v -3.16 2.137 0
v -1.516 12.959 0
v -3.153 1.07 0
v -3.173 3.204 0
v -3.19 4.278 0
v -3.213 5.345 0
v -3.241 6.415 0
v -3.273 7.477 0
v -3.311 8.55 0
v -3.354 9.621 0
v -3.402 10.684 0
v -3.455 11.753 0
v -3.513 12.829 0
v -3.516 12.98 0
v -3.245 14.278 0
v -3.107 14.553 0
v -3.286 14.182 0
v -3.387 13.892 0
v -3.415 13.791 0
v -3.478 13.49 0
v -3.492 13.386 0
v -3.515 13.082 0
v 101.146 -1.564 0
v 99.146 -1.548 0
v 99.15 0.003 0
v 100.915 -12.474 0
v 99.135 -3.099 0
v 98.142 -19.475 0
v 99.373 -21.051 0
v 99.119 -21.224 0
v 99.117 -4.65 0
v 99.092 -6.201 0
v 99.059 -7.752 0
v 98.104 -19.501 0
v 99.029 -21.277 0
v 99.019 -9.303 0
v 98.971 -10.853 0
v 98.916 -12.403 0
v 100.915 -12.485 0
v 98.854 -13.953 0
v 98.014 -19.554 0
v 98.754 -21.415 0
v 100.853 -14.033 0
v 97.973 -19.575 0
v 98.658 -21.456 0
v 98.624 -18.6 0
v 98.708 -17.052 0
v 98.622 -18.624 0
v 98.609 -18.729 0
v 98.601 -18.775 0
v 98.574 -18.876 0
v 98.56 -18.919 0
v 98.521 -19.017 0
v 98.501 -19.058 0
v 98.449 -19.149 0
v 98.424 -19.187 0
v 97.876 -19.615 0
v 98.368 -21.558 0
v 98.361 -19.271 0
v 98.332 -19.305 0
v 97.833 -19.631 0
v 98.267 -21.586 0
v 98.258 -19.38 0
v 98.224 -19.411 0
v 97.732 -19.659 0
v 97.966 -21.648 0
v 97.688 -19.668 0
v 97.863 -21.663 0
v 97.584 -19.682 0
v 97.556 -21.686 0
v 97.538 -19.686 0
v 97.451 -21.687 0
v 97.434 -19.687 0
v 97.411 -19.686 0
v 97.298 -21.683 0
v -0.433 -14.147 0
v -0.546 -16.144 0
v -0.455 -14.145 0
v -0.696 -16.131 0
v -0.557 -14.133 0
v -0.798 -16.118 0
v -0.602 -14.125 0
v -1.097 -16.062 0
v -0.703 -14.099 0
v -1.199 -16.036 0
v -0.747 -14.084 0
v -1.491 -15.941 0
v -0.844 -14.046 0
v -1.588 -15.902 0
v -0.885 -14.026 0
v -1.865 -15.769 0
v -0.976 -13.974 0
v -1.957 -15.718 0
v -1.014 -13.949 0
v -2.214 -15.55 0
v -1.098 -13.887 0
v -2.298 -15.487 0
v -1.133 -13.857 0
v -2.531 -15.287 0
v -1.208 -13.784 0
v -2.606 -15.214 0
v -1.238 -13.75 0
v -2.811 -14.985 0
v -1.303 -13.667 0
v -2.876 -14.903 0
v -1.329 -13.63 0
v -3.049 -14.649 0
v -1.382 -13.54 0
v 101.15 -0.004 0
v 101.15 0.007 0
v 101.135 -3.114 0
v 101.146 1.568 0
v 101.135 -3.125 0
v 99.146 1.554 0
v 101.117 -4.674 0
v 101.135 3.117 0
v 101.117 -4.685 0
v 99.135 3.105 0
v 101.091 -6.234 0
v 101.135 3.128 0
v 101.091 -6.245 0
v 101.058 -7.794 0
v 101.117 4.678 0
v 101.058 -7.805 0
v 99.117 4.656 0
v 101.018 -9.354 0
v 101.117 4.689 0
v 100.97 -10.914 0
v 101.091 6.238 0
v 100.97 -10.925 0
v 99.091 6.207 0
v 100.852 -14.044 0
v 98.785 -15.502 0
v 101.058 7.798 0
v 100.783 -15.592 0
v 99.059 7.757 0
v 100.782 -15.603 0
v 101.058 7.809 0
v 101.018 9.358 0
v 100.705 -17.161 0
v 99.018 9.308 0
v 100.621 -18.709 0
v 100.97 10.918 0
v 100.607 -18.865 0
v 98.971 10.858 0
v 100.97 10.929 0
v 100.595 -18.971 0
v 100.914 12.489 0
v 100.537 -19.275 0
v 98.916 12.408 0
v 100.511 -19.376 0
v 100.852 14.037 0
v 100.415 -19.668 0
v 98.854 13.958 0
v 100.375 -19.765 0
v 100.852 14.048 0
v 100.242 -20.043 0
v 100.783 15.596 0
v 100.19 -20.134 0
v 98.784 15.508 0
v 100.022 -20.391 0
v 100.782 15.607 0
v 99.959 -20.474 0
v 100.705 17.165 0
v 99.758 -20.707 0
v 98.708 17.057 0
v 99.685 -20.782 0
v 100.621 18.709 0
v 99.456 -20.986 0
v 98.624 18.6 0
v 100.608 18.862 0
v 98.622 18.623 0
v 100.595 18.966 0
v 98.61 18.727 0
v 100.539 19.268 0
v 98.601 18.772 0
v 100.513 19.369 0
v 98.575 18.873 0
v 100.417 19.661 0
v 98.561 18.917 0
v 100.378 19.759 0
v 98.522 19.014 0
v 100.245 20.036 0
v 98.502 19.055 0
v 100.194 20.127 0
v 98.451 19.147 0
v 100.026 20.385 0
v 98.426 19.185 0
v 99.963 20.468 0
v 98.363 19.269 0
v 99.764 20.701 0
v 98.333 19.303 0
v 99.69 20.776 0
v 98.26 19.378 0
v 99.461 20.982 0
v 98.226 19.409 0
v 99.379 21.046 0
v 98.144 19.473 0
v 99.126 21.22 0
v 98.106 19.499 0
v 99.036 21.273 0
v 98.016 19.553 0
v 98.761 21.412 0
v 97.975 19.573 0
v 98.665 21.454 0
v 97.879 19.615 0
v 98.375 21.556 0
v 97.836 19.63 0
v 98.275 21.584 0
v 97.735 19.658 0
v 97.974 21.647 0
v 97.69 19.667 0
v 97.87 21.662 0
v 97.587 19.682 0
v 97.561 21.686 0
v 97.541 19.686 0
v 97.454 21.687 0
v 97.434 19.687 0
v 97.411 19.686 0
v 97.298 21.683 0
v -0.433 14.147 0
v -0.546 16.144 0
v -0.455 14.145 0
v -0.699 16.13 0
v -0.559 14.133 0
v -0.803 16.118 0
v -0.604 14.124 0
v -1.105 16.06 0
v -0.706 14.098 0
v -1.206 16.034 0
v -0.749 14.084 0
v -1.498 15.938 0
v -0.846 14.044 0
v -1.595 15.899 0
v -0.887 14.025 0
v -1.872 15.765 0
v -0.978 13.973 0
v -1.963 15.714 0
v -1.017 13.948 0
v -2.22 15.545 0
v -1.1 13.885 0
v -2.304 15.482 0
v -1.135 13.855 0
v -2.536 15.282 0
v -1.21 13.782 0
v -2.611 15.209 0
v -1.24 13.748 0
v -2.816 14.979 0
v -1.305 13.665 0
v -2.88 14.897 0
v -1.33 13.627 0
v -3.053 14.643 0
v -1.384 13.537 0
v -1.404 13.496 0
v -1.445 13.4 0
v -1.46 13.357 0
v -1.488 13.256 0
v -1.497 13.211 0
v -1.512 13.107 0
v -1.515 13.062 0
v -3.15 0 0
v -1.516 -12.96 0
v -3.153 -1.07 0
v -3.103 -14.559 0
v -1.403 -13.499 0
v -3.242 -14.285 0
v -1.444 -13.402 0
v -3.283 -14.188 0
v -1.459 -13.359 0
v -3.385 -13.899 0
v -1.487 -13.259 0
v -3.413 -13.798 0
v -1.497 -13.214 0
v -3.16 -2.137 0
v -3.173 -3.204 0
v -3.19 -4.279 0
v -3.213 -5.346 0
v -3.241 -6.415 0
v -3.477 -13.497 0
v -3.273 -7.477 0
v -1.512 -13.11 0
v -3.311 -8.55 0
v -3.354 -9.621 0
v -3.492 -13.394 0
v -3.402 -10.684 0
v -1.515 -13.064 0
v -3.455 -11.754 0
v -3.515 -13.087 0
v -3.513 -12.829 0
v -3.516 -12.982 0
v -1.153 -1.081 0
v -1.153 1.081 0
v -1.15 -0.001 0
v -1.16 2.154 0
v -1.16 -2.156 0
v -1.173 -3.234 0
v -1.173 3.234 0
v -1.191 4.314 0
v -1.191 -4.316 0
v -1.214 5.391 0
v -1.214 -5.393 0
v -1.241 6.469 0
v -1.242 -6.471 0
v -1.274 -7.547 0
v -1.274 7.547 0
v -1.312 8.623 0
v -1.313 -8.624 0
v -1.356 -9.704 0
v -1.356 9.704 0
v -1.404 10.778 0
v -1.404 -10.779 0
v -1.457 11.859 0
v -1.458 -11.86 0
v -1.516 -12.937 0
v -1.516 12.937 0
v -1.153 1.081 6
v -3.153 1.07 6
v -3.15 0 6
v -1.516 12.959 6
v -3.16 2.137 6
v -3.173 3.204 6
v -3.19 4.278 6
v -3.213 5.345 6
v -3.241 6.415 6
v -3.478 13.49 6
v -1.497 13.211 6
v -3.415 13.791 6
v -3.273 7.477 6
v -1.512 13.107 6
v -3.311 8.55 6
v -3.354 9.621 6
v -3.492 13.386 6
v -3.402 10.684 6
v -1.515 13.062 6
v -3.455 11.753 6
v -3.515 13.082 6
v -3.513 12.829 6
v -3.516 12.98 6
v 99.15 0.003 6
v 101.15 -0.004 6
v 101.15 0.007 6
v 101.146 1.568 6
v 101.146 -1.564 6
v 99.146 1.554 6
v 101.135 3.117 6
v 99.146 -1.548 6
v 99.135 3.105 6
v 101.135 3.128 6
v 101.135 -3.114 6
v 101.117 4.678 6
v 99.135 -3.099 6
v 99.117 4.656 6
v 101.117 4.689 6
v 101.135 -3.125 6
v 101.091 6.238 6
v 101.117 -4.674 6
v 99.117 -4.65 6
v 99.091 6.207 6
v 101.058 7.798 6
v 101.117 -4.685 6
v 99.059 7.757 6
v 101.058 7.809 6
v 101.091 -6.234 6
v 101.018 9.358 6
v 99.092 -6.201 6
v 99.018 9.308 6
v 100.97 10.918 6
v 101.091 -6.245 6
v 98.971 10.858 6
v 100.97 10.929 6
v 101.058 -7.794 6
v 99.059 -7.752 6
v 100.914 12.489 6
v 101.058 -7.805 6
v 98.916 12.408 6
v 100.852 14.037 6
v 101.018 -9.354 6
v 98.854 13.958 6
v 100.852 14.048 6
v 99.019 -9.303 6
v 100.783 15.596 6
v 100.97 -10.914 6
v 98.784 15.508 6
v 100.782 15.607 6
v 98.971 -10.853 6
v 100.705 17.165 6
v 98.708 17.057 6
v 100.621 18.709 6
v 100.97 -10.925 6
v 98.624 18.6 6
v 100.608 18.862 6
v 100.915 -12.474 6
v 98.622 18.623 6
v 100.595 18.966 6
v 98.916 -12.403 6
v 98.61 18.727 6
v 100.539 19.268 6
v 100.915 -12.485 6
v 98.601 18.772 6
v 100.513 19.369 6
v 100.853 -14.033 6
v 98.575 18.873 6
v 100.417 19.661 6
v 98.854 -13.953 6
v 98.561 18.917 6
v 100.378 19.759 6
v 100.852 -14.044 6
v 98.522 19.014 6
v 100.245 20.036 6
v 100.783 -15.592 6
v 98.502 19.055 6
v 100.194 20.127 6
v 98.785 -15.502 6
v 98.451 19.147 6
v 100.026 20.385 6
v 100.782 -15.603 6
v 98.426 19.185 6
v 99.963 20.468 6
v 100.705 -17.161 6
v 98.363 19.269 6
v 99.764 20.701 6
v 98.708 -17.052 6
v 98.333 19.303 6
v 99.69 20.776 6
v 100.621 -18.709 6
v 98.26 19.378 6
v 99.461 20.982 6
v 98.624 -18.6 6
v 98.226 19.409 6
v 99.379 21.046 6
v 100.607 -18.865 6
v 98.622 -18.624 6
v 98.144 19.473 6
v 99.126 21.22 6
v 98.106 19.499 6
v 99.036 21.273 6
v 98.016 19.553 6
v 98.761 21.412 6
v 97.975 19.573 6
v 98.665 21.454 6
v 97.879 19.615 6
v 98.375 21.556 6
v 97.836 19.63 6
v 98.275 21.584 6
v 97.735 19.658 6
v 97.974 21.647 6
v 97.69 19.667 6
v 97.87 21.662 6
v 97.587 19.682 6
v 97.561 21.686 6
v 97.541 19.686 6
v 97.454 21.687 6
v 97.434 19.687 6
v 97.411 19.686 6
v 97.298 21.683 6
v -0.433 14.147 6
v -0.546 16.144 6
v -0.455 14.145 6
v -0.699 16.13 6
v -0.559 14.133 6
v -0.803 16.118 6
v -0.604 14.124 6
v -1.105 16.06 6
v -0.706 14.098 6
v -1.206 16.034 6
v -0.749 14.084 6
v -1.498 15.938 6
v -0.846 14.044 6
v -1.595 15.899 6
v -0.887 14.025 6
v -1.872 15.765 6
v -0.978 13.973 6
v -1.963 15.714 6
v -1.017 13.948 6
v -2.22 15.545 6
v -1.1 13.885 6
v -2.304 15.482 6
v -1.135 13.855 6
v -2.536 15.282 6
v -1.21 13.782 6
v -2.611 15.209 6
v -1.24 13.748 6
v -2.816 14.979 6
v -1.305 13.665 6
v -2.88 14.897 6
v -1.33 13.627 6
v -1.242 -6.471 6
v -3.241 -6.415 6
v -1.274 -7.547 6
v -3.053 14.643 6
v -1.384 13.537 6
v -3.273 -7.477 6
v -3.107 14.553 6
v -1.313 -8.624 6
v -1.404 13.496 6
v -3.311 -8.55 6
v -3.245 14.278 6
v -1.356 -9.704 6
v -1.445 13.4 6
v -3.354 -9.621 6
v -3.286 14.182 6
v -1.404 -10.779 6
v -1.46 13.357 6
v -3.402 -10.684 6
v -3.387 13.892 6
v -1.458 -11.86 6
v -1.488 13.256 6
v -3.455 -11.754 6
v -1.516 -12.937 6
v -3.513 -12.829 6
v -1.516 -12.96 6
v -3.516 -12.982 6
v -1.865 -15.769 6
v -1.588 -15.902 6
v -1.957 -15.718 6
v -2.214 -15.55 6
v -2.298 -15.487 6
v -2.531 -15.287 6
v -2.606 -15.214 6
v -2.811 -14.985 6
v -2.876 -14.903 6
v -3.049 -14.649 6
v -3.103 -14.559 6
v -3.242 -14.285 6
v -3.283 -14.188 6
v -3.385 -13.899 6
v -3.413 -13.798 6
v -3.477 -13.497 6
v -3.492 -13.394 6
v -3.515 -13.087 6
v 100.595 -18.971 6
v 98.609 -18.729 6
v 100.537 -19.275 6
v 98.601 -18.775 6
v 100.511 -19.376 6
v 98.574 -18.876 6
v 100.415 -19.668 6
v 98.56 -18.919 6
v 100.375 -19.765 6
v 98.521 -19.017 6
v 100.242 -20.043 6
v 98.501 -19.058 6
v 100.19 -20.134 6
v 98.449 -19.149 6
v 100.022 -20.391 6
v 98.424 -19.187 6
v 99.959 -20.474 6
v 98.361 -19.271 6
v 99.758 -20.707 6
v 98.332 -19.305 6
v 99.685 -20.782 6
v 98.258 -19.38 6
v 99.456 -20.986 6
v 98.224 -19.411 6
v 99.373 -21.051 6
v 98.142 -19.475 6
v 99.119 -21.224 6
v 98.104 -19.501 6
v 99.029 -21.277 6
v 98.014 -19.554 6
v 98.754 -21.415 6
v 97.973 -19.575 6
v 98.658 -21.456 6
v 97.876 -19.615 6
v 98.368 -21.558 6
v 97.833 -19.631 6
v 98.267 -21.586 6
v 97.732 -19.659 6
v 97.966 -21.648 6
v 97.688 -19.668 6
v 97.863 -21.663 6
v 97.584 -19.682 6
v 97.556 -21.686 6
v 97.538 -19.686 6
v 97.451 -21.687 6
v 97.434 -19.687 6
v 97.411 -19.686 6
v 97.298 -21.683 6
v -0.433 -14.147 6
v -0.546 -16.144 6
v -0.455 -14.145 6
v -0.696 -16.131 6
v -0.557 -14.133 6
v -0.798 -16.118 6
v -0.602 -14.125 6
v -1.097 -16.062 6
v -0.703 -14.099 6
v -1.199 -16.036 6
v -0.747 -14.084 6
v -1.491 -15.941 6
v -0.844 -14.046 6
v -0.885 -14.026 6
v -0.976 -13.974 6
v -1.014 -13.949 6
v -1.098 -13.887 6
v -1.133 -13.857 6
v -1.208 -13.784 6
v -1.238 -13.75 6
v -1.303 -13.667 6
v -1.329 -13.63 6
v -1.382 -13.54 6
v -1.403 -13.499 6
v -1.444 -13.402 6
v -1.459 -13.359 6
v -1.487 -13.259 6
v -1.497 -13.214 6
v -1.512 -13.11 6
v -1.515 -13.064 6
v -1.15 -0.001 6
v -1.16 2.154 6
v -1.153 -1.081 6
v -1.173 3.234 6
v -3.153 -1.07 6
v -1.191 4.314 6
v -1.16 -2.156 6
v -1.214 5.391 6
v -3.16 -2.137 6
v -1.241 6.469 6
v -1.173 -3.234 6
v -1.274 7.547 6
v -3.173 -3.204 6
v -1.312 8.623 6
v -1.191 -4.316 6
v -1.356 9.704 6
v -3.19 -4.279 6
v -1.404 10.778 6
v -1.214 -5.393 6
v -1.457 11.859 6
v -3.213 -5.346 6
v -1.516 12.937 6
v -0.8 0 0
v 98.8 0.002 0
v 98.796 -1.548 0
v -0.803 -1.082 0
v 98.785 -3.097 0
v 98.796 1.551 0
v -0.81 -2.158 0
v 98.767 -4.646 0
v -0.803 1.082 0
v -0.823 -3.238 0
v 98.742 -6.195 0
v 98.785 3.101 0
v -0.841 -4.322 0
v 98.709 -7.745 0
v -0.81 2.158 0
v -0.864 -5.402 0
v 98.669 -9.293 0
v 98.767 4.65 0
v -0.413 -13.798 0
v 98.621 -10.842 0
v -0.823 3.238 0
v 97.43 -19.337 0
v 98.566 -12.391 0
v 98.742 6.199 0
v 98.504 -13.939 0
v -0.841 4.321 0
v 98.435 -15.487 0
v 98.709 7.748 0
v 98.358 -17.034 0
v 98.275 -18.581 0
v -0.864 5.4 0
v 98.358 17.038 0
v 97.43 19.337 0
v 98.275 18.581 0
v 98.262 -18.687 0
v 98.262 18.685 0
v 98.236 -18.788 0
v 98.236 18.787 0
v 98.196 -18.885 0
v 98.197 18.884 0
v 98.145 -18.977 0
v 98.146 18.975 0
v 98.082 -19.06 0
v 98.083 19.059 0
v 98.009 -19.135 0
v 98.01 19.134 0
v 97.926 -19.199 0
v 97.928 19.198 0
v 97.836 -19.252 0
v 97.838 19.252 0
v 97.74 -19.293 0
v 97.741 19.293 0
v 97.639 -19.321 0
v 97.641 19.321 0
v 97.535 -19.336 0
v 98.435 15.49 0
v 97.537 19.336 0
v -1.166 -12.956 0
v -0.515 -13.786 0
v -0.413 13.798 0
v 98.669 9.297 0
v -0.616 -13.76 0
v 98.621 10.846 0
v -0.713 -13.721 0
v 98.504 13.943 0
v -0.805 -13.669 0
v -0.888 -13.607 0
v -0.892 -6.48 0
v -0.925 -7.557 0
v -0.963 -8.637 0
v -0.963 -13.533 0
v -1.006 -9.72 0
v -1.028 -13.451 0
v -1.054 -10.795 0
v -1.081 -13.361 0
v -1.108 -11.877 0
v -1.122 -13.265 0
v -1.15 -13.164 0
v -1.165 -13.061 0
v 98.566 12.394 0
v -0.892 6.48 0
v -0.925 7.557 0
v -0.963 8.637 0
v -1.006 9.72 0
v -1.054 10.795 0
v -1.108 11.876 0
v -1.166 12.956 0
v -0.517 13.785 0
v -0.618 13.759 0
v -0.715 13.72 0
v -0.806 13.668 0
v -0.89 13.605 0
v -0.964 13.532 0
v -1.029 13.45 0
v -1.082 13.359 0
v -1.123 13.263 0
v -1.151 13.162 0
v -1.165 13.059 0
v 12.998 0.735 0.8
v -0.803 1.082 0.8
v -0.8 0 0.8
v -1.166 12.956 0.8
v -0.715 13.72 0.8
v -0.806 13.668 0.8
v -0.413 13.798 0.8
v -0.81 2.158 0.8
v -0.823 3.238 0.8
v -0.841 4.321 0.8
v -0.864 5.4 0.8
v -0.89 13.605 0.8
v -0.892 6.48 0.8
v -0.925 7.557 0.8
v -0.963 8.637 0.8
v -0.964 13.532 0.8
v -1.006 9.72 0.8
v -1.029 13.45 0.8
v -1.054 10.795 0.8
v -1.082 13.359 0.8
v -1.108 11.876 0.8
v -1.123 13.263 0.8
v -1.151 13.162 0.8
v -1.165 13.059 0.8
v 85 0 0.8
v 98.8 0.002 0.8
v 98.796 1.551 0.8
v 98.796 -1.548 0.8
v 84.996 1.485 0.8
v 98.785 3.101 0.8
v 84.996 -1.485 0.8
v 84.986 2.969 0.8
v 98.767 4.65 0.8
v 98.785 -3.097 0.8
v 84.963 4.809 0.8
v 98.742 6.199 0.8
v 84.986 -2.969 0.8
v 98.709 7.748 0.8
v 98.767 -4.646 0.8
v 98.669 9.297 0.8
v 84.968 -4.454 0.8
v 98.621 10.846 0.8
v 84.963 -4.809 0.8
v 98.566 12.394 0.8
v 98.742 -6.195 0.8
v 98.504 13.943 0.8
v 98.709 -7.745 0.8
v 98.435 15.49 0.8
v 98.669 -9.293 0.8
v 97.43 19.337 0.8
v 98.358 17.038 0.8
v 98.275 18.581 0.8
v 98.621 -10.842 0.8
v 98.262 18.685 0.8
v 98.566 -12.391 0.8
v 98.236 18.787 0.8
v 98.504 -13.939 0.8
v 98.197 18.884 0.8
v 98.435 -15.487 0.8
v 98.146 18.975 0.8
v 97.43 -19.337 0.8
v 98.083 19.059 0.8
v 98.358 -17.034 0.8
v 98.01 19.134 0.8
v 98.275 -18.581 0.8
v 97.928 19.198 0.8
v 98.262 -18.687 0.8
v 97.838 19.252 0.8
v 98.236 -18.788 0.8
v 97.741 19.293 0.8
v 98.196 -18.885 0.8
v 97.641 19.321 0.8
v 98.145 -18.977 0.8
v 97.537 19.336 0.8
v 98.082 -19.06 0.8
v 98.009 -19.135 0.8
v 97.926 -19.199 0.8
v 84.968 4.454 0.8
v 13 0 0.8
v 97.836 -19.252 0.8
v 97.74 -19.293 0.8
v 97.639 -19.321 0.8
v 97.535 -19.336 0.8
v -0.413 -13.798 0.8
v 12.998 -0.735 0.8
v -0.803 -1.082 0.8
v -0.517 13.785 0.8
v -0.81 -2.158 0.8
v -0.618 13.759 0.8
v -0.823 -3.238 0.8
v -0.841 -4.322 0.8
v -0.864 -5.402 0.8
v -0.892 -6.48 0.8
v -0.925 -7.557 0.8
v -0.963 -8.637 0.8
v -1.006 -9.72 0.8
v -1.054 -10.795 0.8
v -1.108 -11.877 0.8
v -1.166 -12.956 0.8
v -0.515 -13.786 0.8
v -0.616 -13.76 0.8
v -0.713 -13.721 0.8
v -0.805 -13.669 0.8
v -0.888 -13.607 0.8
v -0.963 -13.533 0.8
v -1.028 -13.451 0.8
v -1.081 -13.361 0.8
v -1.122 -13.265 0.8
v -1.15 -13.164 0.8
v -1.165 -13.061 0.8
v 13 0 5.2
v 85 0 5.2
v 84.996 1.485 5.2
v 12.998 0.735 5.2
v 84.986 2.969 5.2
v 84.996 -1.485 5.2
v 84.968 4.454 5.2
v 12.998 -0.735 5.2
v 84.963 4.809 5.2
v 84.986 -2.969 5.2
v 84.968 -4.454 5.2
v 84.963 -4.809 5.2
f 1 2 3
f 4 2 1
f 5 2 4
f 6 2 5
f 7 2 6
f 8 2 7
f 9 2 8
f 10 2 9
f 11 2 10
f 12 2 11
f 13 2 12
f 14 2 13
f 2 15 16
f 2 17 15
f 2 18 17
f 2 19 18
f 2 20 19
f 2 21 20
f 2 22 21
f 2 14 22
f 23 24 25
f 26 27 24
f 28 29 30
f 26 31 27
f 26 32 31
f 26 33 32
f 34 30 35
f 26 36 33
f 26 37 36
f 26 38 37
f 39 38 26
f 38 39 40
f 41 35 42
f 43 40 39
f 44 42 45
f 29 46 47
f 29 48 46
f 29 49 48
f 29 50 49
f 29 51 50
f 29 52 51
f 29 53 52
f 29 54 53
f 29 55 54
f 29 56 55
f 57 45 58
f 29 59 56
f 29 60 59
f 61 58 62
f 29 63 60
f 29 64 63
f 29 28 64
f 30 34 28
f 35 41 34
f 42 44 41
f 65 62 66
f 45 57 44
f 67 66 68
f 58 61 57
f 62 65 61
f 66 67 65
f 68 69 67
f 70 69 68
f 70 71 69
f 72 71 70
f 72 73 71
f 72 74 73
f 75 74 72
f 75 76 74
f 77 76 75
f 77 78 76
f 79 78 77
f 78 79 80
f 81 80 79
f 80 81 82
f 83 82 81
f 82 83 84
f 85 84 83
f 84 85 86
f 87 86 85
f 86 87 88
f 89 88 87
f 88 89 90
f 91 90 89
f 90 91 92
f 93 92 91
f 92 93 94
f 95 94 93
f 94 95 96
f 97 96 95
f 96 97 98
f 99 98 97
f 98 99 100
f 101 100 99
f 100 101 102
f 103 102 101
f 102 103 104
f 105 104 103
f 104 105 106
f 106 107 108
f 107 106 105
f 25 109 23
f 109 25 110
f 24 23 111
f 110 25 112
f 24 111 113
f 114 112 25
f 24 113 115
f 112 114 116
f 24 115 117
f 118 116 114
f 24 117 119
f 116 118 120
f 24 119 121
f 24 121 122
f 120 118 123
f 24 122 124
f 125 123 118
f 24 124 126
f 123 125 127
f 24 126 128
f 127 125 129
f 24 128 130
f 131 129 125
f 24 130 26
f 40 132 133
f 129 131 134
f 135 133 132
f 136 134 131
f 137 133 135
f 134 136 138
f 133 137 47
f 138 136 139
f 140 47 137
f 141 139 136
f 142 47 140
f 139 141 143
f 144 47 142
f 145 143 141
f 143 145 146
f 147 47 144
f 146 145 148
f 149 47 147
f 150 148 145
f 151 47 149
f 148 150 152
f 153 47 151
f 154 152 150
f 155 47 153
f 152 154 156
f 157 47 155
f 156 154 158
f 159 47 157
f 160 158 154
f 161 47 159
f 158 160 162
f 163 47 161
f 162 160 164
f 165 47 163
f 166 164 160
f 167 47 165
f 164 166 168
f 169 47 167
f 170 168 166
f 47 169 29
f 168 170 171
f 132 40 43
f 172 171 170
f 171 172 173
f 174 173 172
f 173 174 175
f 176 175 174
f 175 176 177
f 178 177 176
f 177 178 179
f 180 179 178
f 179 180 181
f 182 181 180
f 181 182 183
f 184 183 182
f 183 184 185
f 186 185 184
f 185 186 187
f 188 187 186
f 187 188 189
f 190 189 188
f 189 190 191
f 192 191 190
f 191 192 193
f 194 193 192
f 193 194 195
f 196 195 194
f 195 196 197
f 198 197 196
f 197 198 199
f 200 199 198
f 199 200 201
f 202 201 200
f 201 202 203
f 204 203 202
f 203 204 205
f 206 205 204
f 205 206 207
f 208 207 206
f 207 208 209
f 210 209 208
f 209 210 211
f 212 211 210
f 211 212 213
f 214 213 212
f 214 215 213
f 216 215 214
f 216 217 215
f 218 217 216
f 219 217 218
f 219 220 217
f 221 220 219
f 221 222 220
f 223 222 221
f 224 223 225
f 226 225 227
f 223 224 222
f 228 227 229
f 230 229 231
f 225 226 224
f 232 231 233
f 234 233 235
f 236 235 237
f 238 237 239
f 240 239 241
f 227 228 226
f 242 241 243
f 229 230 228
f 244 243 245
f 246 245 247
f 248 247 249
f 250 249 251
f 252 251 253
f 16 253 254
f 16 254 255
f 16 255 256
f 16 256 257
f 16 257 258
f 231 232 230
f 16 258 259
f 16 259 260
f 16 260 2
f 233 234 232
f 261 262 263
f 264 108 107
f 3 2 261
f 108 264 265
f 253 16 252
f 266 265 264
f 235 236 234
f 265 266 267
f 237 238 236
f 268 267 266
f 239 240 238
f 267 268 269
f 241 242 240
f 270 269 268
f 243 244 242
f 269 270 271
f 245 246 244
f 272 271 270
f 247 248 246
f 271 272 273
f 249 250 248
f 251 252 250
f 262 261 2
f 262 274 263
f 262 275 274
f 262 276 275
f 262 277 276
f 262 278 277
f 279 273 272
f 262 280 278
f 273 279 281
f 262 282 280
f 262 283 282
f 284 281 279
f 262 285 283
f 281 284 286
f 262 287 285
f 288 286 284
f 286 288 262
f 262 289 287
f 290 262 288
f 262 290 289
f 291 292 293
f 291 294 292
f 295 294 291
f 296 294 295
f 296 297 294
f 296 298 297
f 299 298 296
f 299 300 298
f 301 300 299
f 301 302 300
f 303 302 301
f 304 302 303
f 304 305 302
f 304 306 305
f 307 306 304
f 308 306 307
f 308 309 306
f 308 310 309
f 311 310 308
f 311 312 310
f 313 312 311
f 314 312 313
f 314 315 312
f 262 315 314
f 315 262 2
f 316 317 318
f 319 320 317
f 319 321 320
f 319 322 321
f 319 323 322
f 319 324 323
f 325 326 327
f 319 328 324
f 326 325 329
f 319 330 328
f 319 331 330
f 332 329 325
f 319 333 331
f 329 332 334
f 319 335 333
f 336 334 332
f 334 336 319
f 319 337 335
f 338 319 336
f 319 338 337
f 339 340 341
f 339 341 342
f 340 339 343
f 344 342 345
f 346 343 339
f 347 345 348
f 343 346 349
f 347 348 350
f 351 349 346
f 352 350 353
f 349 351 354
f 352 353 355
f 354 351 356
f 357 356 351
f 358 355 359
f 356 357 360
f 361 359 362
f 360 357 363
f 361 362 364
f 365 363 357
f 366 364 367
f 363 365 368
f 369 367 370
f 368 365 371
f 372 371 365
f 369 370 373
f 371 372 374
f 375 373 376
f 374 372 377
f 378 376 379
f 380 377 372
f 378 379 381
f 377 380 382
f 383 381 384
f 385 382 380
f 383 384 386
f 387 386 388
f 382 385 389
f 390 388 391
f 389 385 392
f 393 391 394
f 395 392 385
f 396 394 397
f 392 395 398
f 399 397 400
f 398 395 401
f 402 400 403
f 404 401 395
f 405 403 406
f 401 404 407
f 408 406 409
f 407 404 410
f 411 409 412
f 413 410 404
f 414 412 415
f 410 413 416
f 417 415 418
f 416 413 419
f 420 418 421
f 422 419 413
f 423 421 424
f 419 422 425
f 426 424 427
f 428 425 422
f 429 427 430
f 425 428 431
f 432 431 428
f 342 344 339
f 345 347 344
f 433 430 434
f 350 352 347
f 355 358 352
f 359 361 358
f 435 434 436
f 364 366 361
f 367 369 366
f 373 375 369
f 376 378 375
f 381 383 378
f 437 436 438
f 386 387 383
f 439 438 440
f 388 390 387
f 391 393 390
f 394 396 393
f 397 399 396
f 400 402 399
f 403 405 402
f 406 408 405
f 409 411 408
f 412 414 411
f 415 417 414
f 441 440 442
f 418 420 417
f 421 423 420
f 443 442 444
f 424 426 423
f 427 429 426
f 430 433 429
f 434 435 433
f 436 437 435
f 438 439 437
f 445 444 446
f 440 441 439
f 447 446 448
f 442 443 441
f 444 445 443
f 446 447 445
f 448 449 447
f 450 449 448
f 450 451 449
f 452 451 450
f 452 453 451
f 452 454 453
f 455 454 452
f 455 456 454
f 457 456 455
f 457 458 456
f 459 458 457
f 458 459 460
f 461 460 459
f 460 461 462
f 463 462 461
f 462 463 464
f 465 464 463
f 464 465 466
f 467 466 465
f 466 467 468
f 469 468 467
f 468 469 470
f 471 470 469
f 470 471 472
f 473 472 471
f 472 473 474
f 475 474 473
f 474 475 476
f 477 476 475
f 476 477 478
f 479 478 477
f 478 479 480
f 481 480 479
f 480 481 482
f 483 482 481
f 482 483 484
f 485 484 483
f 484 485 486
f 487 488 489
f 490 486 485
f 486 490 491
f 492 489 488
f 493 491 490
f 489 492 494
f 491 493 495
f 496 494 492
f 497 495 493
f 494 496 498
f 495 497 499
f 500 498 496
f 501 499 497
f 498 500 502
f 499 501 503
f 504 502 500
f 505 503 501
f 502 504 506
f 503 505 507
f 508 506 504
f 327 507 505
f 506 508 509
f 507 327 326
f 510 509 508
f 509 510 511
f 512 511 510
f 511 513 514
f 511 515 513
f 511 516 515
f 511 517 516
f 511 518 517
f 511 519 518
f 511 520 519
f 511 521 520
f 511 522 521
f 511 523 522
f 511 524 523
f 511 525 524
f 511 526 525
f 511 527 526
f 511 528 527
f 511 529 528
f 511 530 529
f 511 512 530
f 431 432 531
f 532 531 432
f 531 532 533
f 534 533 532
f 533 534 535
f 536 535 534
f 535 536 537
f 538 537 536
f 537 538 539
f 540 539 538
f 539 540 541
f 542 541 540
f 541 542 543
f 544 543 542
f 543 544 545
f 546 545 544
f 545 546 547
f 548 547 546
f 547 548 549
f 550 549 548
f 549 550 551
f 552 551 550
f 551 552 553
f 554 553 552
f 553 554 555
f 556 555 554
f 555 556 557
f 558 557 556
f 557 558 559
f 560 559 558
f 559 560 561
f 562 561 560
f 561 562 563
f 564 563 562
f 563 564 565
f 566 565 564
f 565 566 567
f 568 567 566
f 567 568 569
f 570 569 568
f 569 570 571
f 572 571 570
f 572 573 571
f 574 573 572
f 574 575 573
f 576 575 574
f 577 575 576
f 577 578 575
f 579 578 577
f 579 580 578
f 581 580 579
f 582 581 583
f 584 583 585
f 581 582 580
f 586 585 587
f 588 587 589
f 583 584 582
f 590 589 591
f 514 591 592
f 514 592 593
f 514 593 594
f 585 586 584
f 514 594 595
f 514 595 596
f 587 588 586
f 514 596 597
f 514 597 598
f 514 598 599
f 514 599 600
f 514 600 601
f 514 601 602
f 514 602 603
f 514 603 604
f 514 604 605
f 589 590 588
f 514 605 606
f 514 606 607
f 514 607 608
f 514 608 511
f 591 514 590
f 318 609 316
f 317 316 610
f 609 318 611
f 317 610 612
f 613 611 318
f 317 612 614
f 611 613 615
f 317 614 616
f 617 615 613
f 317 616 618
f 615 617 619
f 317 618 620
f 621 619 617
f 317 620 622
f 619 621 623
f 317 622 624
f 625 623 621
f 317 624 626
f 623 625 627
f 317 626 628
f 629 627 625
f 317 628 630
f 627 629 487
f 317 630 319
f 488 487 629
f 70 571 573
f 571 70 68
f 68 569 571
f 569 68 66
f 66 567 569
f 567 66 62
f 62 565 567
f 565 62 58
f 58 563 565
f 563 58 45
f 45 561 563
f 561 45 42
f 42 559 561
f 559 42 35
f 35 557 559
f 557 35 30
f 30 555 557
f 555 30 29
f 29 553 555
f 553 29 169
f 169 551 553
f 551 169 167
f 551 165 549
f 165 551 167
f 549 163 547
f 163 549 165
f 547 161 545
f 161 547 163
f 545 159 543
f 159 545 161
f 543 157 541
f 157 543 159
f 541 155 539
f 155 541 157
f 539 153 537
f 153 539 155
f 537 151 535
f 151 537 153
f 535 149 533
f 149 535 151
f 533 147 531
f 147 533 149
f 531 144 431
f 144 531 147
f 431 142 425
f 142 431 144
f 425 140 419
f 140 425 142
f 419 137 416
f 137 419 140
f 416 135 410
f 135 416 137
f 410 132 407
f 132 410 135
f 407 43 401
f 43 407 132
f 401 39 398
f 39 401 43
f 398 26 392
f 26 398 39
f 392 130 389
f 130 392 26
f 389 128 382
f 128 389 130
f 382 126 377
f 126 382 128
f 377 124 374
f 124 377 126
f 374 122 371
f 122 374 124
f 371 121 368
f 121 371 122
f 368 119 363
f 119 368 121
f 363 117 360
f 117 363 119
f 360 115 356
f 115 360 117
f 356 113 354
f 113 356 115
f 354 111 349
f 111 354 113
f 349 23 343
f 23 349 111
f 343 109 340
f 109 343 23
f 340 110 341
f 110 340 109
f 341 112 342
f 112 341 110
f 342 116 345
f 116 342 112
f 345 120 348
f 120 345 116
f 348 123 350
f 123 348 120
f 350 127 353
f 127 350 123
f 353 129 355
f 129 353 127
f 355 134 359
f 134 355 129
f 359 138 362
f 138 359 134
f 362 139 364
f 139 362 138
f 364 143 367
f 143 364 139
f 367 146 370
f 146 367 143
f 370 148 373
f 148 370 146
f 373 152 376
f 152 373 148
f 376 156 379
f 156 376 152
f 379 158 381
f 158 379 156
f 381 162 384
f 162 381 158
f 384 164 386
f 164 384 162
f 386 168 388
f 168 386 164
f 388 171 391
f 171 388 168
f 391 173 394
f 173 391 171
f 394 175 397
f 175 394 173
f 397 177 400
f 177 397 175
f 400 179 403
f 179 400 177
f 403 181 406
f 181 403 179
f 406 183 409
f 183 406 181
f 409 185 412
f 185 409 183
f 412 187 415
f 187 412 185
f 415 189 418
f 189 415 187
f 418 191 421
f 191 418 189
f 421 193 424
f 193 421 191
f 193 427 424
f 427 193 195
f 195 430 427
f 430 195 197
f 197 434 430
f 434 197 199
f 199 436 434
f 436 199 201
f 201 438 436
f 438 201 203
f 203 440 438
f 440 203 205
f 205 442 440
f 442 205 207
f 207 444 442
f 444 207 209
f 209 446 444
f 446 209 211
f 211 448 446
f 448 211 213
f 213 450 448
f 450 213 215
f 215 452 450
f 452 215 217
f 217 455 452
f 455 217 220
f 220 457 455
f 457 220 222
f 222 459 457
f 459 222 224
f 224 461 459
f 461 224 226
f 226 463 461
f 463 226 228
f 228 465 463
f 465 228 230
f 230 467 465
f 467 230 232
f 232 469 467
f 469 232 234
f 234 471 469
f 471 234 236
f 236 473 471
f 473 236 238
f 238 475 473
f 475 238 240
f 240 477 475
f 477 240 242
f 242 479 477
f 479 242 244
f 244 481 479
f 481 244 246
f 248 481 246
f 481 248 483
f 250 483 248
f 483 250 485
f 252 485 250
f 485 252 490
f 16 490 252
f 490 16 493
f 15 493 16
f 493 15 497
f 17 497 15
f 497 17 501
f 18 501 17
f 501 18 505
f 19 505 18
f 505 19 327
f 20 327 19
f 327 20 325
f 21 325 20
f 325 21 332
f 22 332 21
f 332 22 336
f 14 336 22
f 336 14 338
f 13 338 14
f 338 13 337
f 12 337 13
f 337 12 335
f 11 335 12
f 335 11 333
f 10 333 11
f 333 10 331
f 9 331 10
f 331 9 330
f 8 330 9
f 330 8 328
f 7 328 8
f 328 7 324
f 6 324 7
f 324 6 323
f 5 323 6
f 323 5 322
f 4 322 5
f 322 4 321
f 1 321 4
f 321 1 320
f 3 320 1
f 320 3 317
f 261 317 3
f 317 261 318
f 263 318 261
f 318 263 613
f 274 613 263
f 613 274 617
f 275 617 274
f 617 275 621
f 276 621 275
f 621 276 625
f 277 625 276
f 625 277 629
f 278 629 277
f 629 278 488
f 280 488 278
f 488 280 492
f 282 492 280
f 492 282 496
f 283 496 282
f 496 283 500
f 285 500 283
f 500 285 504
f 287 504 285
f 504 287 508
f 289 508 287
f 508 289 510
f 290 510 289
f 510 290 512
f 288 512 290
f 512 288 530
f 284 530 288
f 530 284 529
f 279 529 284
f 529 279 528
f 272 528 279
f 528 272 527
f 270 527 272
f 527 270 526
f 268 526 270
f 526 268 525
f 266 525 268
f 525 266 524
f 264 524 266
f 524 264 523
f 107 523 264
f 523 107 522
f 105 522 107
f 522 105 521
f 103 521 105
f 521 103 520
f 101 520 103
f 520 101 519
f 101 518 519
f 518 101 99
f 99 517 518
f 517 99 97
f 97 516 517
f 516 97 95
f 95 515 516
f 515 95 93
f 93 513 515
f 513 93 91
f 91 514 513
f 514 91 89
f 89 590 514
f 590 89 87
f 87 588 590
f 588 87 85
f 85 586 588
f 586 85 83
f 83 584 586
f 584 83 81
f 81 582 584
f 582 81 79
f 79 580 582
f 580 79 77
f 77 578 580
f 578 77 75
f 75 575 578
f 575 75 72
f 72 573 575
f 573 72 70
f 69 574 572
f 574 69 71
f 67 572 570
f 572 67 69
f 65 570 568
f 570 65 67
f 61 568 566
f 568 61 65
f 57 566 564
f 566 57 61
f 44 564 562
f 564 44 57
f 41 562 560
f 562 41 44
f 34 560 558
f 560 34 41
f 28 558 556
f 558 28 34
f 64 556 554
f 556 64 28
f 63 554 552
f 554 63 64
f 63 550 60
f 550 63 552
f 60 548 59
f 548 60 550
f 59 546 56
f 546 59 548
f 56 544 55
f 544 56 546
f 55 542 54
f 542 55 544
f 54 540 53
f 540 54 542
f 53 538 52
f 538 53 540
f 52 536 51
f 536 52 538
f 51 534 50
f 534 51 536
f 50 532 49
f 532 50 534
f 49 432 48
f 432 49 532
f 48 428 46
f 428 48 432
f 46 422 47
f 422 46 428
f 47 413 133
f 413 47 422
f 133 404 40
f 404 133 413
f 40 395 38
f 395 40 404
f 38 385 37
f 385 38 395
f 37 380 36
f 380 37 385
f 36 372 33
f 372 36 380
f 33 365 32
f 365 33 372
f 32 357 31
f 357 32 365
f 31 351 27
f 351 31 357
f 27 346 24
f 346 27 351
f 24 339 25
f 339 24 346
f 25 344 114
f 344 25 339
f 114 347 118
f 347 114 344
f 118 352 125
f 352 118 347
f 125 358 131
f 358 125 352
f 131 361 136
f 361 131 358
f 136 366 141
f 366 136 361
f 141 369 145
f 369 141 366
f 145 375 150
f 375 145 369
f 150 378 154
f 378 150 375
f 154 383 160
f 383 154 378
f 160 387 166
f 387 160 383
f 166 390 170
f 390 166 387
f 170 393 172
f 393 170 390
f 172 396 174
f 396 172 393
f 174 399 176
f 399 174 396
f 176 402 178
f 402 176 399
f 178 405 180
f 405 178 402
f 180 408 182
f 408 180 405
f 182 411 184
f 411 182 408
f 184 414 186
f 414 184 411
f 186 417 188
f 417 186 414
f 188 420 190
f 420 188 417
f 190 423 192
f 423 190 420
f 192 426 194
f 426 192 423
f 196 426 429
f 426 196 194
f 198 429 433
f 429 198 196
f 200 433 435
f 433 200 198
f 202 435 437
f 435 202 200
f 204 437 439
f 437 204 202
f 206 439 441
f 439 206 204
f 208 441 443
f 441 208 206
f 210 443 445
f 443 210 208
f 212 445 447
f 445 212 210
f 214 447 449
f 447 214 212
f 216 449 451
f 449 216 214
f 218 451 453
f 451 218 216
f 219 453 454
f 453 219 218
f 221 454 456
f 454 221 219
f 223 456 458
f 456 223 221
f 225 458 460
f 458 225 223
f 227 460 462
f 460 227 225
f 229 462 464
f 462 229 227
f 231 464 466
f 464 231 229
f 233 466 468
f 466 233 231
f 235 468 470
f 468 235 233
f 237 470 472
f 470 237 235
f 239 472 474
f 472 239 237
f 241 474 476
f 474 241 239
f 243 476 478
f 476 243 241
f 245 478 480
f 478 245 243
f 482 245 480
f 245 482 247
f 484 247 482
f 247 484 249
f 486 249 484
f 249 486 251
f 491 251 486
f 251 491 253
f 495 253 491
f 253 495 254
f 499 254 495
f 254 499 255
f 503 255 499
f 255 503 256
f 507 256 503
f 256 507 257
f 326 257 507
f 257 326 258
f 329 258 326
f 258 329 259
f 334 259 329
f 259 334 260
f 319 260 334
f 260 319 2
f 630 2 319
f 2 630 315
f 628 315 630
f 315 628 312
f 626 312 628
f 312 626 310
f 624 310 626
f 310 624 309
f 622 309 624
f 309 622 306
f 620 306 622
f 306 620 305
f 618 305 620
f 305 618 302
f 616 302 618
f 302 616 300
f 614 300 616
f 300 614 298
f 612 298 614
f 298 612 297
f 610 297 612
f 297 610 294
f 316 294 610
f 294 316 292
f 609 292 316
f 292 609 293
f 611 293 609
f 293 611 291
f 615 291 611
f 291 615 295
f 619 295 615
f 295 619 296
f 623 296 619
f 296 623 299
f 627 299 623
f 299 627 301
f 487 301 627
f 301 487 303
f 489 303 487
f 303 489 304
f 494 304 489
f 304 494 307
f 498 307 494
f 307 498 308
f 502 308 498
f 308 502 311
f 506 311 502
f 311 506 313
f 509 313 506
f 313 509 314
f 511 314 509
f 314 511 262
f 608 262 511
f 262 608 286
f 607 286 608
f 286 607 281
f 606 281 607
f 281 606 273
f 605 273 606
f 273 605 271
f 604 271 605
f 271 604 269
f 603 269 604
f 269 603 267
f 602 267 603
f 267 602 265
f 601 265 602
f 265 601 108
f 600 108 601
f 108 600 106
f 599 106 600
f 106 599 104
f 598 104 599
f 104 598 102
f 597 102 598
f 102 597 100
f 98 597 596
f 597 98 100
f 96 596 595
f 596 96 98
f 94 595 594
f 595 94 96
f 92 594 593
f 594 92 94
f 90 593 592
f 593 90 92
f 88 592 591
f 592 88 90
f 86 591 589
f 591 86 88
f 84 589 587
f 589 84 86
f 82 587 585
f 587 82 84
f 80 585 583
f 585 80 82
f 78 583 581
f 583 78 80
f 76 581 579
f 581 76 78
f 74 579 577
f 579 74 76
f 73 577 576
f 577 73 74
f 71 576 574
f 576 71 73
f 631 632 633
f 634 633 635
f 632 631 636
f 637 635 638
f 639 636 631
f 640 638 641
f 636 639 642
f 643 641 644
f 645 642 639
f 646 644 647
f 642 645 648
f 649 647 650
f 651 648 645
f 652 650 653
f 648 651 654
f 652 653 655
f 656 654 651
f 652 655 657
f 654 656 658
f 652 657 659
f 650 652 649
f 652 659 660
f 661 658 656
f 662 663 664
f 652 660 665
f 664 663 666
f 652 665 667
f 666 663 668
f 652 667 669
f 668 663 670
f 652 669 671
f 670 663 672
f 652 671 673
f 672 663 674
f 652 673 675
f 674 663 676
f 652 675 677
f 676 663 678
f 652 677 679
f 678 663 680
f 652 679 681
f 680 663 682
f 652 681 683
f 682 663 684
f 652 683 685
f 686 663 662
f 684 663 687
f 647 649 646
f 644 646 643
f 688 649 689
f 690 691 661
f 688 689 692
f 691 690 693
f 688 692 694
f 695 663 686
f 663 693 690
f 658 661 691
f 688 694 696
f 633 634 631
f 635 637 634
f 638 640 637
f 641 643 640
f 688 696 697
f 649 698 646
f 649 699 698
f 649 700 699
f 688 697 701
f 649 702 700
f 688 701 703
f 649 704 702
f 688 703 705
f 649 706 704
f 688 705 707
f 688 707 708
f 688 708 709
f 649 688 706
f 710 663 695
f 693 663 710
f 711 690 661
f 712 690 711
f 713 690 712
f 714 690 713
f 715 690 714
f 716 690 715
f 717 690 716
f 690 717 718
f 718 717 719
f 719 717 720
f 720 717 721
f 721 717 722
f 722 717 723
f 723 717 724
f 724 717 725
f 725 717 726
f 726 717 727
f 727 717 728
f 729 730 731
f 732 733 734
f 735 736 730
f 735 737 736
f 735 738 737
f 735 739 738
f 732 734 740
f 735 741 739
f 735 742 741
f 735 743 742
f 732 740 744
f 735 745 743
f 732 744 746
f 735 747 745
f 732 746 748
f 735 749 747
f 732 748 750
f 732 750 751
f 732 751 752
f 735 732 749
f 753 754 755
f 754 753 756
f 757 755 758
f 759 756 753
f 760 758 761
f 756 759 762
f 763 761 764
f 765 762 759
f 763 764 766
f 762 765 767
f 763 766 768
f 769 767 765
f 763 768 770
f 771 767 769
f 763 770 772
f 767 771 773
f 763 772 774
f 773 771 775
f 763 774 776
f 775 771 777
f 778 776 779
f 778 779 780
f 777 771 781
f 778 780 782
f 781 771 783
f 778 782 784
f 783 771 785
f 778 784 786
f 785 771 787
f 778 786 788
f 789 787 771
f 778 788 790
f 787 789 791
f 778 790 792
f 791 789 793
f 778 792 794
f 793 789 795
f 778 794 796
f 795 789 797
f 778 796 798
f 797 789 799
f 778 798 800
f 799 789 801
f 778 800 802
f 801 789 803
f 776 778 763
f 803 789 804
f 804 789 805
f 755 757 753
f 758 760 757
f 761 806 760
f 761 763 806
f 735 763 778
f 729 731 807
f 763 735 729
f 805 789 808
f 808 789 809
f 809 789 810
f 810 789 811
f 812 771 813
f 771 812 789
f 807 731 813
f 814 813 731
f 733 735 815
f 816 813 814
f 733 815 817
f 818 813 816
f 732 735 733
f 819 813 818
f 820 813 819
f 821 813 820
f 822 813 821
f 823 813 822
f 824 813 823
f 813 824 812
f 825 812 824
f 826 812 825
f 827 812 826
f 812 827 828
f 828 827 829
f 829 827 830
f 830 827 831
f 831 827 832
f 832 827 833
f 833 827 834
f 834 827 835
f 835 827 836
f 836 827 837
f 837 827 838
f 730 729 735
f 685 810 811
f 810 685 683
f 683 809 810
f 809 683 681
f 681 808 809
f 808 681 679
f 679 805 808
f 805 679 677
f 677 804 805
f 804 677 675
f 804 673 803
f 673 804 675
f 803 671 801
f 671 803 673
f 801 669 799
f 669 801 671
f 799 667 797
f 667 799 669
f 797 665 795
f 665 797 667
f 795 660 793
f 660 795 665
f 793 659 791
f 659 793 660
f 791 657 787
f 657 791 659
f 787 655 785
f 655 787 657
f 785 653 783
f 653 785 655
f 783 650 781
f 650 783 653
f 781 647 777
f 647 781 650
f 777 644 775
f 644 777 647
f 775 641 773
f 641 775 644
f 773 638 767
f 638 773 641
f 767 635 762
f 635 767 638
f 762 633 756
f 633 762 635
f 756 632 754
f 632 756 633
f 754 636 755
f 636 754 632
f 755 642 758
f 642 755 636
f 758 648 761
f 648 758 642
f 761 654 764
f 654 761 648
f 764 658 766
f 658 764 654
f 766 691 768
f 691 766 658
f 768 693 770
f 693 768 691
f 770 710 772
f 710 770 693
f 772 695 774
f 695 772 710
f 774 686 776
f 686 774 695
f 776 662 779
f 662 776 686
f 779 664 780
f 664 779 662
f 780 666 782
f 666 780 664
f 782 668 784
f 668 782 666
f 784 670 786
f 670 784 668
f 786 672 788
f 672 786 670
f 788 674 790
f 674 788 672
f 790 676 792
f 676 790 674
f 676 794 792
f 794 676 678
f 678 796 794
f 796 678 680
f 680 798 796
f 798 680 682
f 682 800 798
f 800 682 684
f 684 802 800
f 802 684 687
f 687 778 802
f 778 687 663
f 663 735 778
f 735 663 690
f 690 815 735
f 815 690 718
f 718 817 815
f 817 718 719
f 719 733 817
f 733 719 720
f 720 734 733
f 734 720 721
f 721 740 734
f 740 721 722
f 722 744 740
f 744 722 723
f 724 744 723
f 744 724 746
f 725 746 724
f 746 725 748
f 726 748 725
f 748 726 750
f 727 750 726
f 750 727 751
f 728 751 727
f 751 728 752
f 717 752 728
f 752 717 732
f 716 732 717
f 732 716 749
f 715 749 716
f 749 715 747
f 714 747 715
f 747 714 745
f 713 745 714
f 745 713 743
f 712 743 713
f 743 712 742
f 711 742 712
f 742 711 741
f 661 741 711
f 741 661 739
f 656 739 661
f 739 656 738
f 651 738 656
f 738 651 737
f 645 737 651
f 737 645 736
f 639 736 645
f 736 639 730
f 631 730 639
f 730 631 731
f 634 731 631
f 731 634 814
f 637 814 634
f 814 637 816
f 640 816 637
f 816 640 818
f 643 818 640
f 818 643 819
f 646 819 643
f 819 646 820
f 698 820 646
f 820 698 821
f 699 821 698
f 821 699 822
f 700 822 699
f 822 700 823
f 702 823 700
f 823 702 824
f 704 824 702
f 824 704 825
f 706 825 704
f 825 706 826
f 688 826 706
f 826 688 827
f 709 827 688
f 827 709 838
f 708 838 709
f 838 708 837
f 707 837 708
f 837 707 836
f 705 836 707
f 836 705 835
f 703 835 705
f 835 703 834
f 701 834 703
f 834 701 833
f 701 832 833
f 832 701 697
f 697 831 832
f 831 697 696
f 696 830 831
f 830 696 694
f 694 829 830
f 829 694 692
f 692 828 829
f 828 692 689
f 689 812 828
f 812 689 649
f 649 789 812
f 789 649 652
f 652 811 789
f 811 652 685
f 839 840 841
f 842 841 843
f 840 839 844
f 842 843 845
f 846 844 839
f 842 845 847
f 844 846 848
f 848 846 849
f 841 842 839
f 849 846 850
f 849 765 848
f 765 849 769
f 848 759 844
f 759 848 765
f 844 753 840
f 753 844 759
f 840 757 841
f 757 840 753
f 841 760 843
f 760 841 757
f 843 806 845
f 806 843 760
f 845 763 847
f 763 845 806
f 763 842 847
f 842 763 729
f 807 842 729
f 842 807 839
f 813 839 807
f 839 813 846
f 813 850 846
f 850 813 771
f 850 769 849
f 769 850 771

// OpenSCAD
// Gen-DZ — fit coupon (bay part): O20/O5 THROUGH pockets at carrier thickness (test on a steel offcut), 608 seat,
// D-flat bore, gap shim, and one bobbin-bay slice (bobbin footprint + bay_clear) to test former fit.
include <parameters.scad>;
$fn = 48;
// D-flat keyed bore: flat faces +X (angle 0 = magnet pocket 0 = index notch)
module dflat_bore(h) {
    intersection() {
        cylinder(d=shaft_bore, h=h);
        translate([-shaft_bore, -shaft_bore, 0]) cube([shaft_bore + dflat_x, 2*shaft_bore, h]);
    }
}
module sector_2d(r_in, r_out, ang) {
    polygon([
        for (a = [-ang/2 : ang/24 : ang/2]) [r_in*cos(a), r_in*sin(a)],
        for (a = [ang/2 : -ang/24 : -ang/2]) [r_out*cos(a), r_out*sin(a)]
    ]);
}
module footprint_2d() { offset(r=wall) sector_2d(coil_id_r, coil_od_r, span_deg); }
module hub_2d()       { offset(delta=-coil_core_inset) sector_2d(coil_id_r, coil_od_r, span_deg); }

// bay slice at FULL stator thickness with one bobbin BASE printed IN PLACE inside it (bay_clear gap): this is the
// print-in-place test for the one-plate stator. After printing, the base must pop out with finger pressure; if it is fused,
// print coil_former.stl separately (print-packs/parts/) instead of using the in-place bases.
translate([-coil_id_r, 0, 0]) {
    difference() {
        linear_extrude(stator_thick) offset(r=bay_clear + 2) footprint_2d();
        translate([0, 0, -0.1]) linear_extrude(stator_thick + 0.2) offset(r=bay_clear) footprint_2d();
    }
    union() {
        linear_extrude(flange_t) footprint_2d();
        translate([0, 0, flange_t - 0.01]) linear_extrude(former_web + 0.01) hub_2d();
    }
}
